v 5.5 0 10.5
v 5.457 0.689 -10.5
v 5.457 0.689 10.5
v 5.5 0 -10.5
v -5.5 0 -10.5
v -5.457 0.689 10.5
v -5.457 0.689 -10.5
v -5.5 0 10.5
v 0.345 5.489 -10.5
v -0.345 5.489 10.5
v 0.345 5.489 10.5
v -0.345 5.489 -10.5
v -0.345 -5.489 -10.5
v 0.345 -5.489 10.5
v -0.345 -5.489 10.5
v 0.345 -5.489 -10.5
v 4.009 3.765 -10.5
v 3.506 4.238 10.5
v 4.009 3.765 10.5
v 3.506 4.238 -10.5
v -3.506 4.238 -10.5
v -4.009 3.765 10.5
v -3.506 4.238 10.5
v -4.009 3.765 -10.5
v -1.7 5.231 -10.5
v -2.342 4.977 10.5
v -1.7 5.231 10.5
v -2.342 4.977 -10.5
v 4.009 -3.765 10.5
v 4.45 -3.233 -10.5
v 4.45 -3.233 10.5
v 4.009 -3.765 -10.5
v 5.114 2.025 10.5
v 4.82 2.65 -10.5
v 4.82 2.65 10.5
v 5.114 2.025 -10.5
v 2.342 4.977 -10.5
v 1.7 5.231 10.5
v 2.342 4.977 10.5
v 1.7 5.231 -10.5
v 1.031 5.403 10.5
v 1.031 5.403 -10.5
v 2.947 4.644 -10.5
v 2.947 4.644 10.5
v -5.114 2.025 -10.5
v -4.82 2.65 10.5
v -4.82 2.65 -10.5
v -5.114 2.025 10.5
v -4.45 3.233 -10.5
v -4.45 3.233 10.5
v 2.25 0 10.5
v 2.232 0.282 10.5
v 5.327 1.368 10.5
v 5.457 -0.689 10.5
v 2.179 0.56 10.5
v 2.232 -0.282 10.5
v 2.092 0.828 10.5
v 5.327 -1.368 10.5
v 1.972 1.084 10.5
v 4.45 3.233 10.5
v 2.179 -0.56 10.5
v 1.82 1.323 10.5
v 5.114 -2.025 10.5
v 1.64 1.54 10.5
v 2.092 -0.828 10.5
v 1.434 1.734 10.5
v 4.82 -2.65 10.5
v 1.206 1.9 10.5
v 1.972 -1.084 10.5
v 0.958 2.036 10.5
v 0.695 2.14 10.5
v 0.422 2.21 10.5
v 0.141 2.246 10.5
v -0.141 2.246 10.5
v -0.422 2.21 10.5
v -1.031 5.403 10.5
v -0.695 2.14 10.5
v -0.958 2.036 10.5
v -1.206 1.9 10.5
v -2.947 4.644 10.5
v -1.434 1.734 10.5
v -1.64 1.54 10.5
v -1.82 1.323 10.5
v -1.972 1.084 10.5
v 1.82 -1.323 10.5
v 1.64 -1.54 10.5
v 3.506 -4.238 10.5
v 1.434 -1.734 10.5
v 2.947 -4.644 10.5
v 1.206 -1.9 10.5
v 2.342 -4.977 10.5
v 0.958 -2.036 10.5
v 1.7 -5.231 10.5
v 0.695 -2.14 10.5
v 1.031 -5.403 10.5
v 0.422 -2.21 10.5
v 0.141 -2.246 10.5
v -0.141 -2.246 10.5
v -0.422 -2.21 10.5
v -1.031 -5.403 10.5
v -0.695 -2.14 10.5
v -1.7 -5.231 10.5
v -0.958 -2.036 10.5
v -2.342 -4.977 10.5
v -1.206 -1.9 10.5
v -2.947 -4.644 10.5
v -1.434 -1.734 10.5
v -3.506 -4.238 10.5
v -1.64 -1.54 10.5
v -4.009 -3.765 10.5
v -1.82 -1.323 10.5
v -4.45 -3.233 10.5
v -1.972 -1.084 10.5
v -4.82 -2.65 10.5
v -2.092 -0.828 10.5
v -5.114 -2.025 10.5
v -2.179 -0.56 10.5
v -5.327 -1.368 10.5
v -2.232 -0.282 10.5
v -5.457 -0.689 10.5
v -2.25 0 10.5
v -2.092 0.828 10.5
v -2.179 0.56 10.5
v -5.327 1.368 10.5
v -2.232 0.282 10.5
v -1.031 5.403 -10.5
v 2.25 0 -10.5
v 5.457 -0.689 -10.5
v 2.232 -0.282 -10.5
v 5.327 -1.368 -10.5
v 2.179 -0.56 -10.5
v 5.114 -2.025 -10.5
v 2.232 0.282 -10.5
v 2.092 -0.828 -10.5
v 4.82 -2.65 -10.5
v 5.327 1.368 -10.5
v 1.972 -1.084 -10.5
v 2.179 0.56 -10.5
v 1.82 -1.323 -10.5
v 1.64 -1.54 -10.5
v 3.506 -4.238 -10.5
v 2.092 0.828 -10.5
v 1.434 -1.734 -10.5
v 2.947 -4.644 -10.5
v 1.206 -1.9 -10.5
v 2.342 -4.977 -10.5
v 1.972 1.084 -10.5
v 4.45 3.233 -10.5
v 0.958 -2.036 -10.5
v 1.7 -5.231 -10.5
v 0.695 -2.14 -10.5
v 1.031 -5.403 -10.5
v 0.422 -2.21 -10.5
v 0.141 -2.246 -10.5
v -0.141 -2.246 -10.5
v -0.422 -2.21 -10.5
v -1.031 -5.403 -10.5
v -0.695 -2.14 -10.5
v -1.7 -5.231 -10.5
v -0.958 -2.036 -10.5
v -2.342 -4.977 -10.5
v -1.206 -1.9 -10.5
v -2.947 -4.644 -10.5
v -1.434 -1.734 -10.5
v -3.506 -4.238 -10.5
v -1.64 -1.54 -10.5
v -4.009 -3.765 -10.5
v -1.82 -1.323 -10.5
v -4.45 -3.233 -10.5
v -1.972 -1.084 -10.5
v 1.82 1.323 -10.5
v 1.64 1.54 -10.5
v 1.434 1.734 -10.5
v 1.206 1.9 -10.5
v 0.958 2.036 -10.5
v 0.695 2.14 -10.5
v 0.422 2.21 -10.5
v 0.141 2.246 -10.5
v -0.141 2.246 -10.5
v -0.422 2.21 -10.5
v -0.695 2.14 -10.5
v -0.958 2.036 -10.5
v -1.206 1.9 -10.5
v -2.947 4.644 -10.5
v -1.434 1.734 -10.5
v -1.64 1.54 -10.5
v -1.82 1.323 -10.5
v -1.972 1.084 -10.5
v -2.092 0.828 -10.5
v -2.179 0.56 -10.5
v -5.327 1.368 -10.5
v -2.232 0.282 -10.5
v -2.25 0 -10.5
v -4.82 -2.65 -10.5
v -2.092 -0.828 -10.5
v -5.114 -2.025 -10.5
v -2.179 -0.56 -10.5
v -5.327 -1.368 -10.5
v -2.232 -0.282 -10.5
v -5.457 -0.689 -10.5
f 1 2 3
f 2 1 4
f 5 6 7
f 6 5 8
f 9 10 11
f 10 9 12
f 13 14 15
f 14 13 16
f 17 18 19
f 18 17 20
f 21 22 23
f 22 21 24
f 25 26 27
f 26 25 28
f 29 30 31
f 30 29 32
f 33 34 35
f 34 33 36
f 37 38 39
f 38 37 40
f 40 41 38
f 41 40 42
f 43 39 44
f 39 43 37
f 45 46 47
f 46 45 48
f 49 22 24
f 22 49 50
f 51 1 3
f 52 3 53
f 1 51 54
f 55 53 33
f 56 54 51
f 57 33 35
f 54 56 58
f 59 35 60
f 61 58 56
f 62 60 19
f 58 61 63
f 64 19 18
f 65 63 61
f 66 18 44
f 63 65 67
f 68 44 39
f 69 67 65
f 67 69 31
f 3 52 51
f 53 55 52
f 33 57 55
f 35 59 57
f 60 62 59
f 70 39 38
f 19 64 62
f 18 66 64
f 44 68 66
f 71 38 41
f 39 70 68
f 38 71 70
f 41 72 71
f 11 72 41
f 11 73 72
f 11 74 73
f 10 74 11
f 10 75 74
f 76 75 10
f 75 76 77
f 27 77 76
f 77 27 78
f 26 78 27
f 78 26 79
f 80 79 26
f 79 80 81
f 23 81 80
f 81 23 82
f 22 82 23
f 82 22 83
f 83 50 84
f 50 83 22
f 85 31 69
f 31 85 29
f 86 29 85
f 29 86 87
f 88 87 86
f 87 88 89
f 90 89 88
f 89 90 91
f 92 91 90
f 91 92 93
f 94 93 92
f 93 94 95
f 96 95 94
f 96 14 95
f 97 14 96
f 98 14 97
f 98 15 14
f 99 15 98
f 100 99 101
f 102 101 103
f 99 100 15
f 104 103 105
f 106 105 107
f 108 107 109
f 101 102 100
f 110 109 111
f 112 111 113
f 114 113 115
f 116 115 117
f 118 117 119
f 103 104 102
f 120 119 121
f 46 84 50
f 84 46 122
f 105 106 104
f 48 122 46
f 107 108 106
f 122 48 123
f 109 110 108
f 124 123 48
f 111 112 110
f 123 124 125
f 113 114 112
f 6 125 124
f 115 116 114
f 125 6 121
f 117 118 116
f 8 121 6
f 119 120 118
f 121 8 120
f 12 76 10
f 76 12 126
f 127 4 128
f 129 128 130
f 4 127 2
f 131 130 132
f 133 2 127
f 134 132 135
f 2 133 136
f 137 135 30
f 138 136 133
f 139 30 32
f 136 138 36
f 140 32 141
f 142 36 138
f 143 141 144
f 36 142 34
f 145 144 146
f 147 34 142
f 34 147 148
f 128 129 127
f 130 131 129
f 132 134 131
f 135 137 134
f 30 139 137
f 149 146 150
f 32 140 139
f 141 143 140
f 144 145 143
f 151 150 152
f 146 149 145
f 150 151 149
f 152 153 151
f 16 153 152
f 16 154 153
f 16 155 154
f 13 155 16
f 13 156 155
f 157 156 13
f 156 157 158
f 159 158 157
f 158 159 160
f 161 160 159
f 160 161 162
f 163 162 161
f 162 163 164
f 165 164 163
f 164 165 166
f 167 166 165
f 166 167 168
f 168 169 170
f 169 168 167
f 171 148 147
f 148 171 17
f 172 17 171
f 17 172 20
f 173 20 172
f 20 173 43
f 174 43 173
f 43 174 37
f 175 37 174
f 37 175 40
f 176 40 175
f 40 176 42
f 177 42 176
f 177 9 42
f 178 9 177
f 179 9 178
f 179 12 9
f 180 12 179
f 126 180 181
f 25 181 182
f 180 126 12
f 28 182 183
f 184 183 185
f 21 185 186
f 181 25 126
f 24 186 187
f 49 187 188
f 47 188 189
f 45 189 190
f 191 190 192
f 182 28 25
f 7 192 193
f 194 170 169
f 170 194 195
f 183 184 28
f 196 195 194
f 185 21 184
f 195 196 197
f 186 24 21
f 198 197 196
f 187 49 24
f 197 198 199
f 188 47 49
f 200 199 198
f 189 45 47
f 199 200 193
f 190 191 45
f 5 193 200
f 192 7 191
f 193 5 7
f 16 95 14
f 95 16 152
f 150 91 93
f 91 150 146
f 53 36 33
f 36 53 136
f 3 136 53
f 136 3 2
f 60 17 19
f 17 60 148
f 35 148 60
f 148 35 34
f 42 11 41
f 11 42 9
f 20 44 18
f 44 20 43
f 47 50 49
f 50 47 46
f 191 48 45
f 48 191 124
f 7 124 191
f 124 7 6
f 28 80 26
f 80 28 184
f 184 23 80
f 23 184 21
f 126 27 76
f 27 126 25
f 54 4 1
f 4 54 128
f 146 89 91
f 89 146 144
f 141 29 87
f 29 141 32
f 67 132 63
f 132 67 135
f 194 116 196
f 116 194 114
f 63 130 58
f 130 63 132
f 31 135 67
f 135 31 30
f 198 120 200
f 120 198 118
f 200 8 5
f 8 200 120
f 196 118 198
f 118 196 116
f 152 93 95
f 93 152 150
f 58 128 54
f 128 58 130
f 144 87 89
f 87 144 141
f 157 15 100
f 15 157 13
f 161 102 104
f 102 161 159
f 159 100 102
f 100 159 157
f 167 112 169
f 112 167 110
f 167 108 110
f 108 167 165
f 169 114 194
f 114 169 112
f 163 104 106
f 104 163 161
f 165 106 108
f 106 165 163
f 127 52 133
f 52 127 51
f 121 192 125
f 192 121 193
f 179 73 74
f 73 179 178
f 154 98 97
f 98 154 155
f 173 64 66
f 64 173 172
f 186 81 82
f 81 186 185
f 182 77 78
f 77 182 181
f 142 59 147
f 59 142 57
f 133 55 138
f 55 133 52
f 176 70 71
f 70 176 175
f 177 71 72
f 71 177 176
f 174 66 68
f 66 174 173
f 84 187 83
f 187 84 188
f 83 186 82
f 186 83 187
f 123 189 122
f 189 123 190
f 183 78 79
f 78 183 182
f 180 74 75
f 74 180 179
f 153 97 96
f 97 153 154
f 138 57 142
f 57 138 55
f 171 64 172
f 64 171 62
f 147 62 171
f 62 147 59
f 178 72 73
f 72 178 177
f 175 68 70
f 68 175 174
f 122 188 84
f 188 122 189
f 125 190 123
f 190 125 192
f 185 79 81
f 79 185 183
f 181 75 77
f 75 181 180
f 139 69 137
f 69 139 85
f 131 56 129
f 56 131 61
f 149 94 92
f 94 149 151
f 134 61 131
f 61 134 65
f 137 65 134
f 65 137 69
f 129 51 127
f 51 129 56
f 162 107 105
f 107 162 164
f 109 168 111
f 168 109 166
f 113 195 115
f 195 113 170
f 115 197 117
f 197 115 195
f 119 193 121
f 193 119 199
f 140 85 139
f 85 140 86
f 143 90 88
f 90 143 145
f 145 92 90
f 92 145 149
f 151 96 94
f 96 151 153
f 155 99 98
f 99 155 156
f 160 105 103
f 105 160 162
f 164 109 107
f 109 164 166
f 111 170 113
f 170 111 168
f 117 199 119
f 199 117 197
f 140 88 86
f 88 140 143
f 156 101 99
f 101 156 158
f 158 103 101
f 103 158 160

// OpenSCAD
$fn = 50;


difference() {
	union() {
		translate(v = [0, 0, -10.5000000000]) {
			cylinder(h = 21, r = 5.5000000000);
		}
	}
	union() {
		translate(v = [0, 0, -100.0000000000]) {
			cylinder(h = 200, r = 2.2500000000);
		}
	}
}
